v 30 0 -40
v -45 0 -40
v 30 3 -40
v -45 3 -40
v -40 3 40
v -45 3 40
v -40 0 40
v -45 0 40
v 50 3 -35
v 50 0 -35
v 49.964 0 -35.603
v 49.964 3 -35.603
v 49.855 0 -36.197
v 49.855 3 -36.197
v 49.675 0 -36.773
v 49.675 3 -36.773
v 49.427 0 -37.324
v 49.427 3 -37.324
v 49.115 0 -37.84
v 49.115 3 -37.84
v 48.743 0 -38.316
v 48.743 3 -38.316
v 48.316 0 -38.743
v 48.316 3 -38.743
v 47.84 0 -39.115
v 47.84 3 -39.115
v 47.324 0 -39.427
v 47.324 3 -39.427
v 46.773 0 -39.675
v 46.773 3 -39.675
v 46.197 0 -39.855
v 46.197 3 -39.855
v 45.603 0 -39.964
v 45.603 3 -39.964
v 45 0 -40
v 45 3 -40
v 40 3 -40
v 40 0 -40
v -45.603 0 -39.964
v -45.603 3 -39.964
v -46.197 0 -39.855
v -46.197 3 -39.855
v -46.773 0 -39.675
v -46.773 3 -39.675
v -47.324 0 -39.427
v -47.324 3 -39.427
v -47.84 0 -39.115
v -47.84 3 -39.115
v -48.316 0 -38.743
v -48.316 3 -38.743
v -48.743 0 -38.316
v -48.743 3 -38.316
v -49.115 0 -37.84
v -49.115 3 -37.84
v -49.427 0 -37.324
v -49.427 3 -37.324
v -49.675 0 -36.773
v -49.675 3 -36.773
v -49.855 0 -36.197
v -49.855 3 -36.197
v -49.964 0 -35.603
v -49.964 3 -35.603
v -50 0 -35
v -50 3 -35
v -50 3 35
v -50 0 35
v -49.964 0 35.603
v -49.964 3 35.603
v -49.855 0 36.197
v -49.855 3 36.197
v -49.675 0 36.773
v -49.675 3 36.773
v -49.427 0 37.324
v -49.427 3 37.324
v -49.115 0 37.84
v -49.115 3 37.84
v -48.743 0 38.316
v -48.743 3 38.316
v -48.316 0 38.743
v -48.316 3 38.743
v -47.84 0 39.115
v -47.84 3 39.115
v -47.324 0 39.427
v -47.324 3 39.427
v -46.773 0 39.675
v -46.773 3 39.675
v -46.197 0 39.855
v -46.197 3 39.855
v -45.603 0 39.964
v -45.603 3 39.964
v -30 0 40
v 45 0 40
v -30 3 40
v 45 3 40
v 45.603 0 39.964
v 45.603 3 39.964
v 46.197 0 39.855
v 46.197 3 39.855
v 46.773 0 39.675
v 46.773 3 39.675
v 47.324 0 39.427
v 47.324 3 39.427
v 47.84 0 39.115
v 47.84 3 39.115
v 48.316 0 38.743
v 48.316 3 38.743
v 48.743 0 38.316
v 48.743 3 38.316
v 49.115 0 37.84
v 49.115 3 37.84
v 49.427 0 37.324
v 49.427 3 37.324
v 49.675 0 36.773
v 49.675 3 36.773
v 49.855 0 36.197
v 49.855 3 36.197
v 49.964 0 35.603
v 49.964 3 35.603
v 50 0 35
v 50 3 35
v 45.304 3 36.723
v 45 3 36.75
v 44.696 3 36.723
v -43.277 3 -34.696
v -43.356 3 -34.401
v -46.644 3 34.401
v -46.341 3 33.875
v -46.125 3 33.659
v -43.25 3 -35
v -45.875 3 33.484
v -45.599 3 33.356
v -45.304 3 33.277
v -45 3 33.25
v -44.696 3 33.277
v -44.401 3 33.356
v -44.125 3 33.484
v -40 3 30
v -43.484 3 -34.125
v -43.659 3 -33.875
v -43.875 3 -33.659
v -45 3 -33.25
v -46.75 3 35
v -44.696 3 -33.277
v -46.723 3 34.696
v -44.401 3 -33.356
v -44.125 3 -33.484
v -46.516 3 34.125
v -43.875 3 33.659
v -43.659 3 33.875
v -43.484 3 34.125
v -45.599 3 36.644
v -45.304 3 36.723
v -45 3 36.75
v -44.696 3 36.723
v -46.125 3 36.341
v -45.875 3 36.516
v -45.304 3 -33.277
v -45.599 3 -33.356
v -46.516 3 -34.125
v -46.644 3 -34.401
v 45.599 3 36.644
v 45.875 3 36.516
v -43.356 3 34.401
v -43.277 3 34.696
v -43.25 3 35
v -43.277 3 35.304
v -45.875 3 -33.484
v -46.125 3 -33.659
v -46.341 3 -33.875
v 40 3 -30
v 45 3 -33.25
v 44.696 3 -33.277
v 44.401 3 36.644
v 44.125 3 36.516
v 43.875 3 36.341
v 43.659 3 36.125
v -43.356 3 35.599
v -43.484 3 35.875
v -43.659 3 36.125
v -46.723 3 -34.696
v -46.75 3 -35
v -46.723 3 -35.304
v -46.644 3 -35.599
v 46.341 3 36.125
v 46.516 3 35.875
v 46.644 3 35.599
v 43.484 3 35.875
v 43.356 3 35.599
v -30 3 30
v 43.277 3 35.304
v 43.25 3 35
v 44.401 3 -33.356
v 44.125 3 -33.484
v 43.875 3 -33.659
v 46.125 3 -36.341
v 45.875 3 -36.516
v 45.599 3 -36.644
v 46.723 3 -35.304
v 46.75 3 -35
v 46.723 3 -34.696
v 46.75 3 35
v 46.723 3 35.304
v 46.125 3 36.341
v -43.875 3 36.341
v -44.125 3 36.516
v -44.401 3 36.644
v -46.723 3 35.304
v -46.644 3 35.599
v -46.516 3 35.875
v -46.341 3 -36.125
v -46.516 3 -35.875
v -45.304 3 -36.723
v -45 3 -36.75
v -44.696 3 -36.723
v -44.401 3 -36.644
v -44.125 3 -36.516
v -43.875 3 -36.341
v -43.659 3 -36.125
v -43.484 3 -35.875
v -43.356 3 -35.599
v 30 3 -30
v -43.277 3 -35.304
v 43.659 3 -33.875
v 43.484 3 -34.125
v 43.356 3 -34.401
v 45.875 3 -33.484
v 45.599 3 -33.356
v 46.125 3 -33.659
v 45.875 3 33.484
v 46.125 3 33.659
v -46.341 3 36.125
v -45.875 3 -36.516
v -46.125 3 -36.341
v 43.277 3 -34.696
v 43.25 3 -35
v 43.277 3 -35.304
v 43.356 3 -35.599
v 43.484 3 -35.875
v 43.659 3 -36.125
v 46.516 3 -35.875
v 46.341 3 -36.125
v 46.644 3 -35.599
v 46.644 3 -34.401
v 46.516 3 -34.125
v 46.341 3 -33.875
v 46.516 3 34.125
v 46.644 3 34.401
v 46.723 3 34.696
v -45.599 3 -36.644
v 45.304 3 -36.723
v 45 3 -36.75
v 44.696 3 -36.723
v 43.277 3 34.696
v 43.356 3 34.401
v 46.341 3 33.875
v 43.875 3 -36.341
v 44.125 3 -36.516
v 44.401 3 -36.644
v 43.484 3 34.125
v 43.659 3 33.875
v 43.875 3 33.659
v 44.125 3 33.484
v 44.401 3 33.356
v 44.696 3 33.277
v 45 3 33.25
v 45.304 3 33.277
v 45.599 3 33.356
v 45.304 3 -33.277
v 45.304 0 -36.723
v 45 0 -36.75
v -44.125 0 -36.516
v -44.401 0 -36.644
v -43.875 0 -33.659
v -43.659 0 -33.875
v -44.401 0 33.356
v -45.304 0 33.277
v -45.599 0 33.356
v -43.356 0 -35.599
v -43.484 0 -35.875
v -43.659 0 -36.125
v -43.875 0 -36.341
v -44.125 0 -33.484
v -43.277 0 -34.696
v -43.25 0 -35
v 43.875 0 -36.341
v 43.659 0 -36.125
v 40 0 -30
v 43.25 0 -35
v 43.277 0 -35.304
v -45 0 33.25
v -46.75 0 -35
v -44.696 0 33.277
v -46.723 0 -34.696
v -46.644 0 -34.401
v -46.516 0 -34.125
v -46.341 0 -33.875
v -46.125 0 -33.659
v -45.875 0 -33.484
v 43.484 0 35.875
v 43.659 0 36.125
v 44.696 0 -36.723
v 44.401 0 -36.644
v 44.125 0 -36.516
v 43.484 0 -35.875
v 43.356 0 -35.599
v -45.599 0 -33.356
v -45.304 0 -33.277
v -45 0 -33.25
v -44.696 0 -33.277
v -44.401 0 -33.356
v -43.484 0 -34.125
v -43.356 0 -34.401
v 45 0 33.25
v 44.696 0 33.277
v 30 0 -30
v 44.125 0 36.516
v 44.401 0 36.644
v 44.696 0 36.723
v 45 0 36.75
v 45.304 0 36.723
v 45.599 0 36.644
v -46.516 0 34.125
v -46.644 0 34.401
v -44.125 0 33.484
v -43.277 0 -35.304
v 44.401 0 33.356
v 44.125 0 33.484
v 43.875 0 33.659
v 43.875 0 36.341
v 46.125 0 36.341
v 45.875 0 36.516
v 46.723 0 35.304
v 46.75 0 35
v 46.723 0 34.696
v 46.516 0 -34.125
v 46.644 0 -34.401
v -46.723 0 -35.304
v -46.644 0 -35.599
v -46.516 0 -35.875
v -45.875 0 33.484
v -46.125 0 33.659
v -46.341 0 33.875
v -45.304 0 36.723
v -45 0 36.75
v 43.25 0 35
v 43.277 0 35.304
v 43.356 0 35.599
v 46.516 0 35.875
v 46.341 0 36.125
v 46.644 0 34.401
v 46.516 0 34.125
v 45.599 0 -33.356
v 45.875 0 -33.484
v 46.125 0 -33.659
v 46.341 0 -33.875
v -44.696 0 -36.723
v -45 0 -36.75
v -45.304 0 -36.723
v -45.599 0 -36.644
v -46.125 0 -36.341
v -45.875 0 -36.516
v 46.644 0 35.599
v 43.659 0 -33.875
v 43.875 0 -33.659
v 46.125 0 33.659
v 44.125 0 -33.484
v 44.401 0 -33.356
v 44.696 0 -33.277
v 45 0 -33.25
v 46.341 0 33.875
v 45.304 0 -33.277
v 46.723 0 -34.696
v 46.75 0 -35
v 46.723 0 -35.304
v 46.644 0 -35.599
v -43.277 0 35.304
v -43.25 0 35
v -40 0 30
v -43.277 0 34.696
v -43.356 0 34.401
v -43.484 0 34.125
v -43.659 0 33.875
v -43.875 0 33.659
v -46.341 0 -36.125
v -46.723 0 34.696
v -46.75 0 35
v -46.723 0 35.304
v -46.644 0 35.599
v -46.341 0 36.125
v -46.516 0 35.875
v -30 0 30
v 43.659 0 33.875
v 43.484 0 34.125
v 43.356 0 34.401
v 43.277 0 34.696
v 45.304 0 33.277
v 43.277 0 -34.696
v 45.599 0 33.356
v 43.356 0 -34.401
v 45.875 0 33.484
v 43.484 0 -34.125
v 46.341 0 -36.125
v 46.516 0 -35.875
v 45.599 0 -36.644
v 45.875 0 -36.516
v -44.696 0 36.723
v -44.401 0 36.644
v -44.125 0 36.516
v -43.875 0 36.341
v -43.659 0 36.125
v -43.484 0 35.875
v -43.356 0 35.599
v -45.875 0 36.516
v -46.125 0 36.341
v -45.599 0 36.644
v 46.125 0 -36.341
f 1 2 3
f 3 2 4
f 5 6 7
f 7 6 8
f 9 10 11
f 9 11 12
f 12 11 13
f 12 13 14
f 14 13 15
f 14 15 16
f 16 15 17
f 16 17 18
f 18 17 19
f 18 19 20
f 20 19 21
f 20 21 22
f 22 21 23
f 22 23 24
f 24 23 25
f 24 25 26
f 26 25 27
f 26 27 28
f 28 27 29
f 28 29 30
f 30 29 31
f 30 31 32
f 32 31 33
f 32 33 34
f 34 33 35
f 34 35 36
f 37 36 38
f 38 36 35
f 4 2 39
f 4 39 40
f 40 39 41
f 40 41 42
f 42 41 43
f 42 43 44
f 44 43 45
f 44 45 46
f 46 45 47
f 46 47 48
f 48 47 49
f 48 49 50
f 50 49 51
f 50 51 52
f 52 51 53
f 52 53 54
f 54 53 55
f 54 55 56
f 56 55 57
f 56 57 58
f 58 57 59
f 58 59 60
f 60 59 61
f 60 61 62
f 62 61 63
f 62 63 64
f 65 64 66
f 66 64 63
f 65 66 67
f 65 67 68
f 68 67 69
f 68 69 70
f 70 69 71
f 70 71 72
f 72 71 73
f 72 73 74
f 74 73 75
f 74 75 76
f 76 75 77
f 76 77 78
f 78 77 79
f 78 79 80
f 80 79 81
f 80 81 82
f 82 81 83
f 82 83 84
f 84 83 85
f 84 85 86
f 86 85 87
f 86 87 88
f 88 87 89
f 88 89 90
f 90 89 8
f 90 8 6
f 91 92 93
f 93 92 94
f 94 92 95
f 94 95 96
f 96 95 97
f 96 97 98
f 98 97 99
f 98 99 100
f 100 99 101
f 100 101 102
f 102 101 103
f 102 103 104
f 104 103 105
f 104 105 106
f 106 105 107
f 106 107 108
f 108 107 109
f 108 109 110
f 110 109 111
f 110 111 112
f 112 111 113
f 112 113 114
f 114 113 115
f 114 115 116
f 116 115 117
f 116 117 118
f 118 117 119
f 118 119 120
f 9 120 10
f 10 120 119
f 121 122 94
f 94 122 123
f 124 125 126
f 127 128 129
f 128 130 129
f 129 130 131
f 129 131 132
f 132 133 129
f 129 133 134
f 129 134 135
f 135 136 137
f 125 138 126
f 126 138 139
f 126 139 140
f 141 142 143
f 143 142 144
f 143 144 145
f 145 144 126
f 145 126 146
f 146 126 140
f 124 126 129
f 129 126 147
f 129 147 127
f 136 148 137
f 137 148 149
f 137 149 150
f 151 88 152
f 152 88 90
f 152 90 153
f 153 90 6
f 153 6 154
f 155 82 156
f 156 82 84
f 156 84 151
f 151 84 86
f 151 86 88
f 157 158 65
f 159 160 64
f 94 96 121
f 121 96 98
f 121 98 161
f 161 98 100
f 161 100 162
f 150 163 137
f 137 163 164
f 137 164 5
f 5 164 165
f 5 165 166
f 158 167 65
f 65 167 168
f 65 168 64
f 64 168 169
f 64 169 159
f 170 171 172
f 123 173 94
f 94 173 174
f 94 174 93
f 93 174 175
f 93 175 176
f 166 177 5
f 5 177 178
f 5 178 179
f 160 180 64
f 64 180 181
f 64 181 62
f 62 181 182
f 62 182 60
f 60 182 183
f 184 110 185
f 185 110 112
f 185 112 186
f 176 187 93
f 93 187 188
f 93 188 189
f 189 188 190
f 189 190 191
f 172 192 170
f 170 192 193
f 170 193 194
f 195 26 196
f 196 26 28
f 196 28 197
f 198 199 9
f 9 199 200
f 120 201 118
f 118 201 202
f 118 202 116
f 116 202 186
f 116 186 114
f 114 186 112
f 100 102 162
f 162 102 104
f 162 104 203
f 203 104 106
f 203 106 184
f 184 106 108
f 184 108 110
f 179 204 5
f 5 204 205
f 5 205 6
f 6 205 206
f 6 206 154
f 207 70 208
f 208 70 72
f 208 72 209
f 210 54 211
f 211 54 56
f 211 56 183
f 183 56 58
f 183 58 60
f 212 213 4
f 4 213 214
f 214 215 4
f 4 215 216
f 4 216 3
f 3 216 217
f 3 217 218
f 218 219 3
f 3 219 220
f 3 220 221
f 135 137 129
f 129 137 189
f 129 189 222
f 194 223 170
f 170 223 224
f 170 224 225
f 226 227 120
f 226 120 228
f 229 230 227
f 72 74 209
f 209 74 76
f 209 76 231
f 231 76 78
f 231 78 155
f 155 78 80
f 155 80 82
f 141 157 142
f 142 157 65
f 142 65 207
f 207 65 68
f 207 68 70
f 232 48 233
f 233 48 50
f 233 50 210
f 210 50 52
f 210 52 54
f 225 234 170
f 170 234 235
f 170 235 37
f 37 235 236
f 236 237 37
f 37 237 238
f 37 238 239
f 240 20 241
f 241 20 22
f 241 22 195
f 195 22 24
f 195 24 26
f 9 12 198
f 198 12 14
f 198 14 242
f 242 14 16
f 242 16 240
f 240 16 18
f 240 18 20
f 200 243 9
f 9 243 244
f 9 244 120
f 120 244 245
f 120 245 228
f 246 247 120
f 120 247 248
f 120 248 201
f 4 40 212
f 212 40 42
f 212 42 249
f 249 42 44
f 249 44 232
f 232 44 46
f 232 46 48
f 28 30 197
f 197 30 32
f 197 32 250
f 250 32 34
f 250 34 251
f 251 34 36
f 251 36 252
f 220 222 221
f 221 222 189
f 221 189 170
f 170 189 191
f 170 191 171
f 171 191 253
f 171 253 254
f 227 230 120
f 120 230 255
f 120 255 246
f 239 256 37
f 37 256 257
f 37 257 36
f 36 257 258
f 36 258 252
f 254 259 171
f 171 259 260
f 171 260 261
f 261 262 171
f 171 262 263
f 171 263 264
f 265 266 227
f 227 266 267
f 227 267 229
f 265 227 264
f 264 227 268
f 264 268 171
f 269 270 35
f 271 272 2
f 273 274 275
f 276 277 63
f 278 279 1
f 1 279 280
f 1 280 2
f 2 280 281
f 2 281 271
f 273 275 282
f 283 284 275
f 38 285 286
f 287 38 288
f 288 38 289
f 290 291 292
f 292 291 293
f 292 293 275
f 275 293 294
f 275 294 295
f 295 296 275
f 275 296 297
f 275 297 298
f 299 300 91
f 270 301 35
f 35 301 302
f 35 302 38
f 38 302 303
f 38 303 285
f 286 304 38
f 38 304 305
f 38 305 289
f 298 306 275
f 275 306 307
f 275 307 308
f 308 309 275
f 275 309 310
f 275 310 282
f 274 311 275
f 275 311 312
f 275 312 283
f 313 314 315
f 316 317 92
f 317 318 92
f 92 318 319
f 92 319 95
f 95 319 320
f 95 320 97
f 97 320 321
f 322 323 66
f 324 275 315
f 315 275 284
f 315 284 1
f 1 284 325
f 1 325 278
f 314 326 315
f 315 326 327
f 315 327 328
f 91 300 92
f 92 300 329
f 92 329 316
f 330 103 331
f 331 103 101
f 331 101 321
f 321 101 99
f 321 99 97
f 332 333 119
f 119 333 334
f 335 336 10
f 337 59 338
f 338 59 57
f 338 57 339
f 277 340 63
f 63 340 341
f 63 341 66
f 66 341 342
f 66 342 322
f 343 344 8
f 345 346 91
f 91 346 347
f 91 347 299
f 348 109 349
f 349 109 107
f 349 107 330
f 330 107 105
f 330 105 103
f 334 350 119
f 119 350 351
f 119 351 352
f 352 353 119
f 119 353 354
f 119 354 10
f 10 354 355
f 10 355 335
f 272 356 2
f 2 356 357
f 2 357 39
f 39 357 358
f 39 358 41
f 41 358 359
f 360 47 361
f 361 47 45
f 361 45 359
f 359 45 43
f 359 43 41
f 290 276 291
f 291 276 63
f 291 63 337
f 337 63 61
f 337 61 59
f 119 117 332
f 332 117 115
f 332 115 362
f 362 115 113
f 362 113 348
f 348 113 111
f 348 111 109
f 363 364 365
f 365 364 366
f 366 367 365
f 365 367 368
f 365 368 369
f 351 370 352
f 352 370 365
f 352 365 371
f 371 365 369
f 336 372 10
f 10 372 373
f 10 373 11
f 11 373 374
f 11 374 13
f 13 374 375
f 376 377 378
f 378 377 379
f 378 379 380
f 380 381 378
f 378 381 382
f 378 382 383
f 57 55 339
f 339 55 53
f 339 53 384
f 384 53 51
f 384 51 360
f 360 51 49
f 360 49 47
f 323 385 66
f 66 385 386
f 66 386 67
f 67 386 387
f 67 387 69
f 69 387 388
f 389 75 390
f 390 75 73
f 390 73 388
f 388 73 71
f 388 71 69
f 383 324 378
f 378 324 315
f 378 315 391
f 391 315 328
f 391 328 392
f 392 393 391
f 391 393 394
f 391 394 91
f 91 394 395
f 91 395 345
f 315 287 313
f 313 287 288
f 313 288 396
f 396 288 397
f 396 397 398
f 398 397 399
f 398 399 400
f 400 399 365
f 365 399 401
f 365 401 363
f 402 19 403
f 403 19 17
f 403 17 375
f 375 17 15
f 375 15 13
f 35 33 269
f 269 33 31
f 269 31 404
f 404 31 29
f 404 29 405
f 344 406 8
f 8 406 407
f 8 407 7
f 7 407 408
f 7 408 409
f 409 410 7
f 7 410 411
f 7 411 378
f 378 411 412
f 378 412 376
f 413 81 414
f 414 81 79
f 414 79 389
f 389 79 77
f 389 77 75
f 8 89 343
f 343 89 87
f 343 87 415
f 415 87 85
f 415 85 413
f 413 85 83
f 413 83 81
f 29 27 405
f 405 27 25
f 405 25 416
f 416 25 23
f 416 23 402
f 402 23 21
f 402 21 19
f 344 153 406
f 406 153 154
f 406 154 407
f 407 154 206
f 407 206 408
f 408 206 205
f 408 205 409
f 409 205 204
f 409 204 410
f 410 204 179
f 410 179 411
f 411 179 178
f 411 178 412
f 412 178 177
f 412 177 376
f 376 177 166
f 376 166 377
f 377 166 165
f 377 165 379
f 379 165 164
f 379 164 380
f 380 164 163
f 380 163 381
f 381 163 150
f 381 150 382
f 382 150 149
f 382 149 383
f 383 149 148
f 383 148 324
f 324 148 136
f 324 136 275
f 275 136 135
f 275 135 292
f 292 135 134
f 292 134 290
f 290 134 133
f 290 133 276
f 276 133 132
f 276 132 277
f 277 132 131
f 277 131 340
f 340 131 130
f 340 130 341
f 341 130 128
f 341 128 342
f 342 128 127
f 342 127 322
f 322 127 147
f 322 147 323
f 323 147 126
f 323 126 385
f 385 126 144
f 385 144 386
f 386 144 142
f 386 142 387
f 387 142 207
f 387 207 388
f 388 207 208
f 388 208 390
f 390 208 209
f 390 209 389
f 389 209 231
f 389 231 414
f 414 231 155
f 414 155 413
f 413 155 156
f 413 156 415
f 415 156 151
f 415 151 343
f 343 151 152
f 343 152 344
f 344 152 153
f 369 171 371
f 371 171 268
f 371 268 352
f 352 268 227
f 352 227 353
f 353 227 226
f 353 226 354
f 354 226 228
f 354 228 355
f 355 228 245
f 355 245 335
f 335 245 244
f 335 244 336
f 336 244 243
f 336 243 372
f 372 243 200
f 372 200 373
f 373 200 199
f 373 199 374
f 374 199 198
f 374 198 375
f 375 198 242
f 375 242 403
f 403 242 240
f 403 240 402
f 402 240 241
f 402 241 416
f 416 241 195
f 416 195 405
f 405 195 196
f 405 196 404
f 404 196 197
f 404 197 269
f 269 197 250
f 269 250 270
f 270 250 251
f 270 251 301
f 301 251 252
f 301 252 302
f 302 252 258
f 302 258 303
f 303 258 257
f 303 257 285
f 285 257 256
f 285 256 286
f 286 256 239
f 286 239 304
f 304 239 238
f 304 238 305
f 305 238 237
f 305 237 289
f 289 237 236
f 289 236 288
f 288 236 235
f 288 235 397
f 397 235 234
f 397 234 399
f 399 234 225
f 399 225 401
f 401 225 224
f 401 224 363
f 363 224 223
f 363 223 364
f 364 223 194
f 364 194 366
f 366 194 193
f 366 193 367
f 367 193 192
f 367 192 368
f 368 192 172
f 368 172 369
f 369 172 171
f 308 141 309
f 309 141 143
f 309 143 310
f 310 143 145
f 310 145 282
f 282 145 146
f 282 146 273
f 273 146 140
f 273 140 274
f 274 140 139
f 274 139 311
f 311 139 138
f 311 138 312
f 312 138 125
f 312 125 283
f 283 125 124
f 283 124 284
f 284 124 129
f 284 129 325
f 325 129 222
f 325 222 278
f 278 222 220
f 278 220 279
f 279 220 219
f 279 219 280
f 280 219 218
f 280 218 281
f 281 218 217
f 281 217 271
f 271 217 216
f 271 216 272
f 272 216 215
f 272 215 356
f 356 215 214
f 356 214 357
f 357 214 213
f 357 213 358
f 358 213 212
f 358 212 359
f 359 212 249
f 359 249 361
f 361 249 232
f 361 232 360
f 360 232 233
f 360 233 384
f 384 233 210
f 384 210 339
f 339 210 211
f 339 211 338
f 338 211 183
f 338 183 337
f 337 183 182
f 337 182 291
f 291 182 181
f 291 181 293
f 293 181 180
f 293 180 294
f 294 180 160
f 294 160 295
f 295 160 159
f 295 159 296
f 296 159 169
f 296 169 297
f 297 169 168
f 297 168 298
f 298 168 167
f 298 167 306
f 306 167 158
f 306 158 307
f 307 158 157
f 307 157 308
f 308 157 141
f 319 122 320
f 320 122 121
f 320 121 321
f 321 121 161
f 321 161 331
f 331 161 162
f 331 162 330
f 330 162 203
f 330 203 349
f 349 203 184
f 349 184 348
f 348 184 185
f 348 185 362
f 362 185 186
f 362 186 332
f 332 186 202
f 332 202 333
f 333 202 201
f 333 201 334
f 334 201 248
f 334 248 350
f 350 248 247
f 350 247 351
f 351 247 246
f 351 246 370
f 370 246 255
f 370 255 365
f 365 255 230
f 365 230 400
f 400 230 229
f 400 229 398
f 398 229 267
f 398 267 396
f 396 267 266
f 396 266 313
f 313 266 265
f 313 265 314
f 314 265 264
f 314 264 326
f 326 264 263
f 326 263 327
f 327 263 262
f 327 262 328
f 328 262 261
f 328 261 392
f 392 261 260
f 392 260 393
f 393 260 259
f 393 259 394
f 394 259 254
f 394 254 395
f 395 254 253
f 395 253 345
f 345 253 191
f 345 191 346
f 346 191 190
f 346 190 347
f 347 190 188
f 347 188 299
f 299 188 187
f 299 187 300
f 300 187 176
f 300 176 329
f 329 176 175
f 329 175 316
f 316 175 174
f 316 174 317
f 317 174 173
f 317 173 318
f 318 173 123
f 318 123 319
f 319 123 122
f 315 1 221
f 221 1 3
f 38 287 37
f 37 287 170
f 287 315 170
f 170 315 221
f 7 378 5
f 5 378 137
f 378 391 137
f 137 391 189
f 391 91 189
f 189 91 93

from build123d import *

# Parameters (mm, degrees)
BOSS_EXTRUDE1_DEPTH  = 3
SKETCH3_R            = 1.75
CUT_EXTRUDE2_DEPTH   = 4
LPATTERN1_COUNT      = 2
LPATTERN1_PITCH      = 70
LPATTERN1_COUNT_DIR2 = 2
LPATTERN1_PITCH_DIR2 = 90
SKETCH5_W            = 10
SKETCH5_H            = 10
CUT_EXTRUDE4_DEPTH   = 4


with BuildPart() as part:
    # Sketch1 → Boss-Extrude1 (new body)
    with BuildSketch(Plane(origin=(0, 0, 0), x_dir=(1, 0, 0), z_dir=(0, 1, 0))):
        with BuildLine():
            Line((-45, 40), (45, 40))
            ThreePointArc((45, 40), (48.535533906, 38.535533906), (50, 35))
            Line((50, 35), (50, -35))
            ThreePointArc((50, -35), (48.535533906, -38.535533906), (45, -40))
            Line((45, -40), (-45, -40))
            ThreePointArc((-45, -40), (-48.535533906, -38.535533906), (-50, -35))
            Line((-50, -35), (-50, 35))
            ThreePointArc((-50, 35), (-48.535533906, 38.535533906), (-45, 40))
        make_face()
    extrude(amount=BOSS_EXTRUDE1_DEPTH)

    # Sketch3 → Cut-Extrude2 (cut, through all)
    with BuildSketch(Plane(origin=(0, 3, 0), x_dir=(1, 0, 0), z_dir=(0, 1, 0))):
        with Locations((-45, -35)):
            Circle(SKETCH3_R)
    cut_extrude2 = extrude(amount=-CUT_EXTRUDE2_DEPTH, mode=Mode.SUBTRACT)

    # LPattern1: Cut-Extrude2 2 × 2
    with Locations(*[(j * LPATTERN1_PITCH_DIR2, 0, -i * LPATTERN1_PITCH) for i in range(LPATTERN1_COUNT) for j in range(LPATTERN1_COUNT_DIR2) if (i, j) != (0, 0)]):
        add(cut_extrude2, mode=Mode.SUBTRACT)

    # Sketch5 → Cut-Extrude4 (cut, through all)
    with BuildSketch(Plane(origin=(0, 3, 0), x_dir=(1, 0, 0), z_dir=(0, 1, 0))):
        with Locations((-35, -35)):
            Rectangle(SKETCH5_W, SKETCH5_H)
        with Locations((35, 35)):
            Rectangle(SKETCH5_W, SKETCH5_H)
    extrude(amount=-CUT_EXTRUDE4_DEPTH, mode=Mode.SUBTRACT)


solid = part.part
